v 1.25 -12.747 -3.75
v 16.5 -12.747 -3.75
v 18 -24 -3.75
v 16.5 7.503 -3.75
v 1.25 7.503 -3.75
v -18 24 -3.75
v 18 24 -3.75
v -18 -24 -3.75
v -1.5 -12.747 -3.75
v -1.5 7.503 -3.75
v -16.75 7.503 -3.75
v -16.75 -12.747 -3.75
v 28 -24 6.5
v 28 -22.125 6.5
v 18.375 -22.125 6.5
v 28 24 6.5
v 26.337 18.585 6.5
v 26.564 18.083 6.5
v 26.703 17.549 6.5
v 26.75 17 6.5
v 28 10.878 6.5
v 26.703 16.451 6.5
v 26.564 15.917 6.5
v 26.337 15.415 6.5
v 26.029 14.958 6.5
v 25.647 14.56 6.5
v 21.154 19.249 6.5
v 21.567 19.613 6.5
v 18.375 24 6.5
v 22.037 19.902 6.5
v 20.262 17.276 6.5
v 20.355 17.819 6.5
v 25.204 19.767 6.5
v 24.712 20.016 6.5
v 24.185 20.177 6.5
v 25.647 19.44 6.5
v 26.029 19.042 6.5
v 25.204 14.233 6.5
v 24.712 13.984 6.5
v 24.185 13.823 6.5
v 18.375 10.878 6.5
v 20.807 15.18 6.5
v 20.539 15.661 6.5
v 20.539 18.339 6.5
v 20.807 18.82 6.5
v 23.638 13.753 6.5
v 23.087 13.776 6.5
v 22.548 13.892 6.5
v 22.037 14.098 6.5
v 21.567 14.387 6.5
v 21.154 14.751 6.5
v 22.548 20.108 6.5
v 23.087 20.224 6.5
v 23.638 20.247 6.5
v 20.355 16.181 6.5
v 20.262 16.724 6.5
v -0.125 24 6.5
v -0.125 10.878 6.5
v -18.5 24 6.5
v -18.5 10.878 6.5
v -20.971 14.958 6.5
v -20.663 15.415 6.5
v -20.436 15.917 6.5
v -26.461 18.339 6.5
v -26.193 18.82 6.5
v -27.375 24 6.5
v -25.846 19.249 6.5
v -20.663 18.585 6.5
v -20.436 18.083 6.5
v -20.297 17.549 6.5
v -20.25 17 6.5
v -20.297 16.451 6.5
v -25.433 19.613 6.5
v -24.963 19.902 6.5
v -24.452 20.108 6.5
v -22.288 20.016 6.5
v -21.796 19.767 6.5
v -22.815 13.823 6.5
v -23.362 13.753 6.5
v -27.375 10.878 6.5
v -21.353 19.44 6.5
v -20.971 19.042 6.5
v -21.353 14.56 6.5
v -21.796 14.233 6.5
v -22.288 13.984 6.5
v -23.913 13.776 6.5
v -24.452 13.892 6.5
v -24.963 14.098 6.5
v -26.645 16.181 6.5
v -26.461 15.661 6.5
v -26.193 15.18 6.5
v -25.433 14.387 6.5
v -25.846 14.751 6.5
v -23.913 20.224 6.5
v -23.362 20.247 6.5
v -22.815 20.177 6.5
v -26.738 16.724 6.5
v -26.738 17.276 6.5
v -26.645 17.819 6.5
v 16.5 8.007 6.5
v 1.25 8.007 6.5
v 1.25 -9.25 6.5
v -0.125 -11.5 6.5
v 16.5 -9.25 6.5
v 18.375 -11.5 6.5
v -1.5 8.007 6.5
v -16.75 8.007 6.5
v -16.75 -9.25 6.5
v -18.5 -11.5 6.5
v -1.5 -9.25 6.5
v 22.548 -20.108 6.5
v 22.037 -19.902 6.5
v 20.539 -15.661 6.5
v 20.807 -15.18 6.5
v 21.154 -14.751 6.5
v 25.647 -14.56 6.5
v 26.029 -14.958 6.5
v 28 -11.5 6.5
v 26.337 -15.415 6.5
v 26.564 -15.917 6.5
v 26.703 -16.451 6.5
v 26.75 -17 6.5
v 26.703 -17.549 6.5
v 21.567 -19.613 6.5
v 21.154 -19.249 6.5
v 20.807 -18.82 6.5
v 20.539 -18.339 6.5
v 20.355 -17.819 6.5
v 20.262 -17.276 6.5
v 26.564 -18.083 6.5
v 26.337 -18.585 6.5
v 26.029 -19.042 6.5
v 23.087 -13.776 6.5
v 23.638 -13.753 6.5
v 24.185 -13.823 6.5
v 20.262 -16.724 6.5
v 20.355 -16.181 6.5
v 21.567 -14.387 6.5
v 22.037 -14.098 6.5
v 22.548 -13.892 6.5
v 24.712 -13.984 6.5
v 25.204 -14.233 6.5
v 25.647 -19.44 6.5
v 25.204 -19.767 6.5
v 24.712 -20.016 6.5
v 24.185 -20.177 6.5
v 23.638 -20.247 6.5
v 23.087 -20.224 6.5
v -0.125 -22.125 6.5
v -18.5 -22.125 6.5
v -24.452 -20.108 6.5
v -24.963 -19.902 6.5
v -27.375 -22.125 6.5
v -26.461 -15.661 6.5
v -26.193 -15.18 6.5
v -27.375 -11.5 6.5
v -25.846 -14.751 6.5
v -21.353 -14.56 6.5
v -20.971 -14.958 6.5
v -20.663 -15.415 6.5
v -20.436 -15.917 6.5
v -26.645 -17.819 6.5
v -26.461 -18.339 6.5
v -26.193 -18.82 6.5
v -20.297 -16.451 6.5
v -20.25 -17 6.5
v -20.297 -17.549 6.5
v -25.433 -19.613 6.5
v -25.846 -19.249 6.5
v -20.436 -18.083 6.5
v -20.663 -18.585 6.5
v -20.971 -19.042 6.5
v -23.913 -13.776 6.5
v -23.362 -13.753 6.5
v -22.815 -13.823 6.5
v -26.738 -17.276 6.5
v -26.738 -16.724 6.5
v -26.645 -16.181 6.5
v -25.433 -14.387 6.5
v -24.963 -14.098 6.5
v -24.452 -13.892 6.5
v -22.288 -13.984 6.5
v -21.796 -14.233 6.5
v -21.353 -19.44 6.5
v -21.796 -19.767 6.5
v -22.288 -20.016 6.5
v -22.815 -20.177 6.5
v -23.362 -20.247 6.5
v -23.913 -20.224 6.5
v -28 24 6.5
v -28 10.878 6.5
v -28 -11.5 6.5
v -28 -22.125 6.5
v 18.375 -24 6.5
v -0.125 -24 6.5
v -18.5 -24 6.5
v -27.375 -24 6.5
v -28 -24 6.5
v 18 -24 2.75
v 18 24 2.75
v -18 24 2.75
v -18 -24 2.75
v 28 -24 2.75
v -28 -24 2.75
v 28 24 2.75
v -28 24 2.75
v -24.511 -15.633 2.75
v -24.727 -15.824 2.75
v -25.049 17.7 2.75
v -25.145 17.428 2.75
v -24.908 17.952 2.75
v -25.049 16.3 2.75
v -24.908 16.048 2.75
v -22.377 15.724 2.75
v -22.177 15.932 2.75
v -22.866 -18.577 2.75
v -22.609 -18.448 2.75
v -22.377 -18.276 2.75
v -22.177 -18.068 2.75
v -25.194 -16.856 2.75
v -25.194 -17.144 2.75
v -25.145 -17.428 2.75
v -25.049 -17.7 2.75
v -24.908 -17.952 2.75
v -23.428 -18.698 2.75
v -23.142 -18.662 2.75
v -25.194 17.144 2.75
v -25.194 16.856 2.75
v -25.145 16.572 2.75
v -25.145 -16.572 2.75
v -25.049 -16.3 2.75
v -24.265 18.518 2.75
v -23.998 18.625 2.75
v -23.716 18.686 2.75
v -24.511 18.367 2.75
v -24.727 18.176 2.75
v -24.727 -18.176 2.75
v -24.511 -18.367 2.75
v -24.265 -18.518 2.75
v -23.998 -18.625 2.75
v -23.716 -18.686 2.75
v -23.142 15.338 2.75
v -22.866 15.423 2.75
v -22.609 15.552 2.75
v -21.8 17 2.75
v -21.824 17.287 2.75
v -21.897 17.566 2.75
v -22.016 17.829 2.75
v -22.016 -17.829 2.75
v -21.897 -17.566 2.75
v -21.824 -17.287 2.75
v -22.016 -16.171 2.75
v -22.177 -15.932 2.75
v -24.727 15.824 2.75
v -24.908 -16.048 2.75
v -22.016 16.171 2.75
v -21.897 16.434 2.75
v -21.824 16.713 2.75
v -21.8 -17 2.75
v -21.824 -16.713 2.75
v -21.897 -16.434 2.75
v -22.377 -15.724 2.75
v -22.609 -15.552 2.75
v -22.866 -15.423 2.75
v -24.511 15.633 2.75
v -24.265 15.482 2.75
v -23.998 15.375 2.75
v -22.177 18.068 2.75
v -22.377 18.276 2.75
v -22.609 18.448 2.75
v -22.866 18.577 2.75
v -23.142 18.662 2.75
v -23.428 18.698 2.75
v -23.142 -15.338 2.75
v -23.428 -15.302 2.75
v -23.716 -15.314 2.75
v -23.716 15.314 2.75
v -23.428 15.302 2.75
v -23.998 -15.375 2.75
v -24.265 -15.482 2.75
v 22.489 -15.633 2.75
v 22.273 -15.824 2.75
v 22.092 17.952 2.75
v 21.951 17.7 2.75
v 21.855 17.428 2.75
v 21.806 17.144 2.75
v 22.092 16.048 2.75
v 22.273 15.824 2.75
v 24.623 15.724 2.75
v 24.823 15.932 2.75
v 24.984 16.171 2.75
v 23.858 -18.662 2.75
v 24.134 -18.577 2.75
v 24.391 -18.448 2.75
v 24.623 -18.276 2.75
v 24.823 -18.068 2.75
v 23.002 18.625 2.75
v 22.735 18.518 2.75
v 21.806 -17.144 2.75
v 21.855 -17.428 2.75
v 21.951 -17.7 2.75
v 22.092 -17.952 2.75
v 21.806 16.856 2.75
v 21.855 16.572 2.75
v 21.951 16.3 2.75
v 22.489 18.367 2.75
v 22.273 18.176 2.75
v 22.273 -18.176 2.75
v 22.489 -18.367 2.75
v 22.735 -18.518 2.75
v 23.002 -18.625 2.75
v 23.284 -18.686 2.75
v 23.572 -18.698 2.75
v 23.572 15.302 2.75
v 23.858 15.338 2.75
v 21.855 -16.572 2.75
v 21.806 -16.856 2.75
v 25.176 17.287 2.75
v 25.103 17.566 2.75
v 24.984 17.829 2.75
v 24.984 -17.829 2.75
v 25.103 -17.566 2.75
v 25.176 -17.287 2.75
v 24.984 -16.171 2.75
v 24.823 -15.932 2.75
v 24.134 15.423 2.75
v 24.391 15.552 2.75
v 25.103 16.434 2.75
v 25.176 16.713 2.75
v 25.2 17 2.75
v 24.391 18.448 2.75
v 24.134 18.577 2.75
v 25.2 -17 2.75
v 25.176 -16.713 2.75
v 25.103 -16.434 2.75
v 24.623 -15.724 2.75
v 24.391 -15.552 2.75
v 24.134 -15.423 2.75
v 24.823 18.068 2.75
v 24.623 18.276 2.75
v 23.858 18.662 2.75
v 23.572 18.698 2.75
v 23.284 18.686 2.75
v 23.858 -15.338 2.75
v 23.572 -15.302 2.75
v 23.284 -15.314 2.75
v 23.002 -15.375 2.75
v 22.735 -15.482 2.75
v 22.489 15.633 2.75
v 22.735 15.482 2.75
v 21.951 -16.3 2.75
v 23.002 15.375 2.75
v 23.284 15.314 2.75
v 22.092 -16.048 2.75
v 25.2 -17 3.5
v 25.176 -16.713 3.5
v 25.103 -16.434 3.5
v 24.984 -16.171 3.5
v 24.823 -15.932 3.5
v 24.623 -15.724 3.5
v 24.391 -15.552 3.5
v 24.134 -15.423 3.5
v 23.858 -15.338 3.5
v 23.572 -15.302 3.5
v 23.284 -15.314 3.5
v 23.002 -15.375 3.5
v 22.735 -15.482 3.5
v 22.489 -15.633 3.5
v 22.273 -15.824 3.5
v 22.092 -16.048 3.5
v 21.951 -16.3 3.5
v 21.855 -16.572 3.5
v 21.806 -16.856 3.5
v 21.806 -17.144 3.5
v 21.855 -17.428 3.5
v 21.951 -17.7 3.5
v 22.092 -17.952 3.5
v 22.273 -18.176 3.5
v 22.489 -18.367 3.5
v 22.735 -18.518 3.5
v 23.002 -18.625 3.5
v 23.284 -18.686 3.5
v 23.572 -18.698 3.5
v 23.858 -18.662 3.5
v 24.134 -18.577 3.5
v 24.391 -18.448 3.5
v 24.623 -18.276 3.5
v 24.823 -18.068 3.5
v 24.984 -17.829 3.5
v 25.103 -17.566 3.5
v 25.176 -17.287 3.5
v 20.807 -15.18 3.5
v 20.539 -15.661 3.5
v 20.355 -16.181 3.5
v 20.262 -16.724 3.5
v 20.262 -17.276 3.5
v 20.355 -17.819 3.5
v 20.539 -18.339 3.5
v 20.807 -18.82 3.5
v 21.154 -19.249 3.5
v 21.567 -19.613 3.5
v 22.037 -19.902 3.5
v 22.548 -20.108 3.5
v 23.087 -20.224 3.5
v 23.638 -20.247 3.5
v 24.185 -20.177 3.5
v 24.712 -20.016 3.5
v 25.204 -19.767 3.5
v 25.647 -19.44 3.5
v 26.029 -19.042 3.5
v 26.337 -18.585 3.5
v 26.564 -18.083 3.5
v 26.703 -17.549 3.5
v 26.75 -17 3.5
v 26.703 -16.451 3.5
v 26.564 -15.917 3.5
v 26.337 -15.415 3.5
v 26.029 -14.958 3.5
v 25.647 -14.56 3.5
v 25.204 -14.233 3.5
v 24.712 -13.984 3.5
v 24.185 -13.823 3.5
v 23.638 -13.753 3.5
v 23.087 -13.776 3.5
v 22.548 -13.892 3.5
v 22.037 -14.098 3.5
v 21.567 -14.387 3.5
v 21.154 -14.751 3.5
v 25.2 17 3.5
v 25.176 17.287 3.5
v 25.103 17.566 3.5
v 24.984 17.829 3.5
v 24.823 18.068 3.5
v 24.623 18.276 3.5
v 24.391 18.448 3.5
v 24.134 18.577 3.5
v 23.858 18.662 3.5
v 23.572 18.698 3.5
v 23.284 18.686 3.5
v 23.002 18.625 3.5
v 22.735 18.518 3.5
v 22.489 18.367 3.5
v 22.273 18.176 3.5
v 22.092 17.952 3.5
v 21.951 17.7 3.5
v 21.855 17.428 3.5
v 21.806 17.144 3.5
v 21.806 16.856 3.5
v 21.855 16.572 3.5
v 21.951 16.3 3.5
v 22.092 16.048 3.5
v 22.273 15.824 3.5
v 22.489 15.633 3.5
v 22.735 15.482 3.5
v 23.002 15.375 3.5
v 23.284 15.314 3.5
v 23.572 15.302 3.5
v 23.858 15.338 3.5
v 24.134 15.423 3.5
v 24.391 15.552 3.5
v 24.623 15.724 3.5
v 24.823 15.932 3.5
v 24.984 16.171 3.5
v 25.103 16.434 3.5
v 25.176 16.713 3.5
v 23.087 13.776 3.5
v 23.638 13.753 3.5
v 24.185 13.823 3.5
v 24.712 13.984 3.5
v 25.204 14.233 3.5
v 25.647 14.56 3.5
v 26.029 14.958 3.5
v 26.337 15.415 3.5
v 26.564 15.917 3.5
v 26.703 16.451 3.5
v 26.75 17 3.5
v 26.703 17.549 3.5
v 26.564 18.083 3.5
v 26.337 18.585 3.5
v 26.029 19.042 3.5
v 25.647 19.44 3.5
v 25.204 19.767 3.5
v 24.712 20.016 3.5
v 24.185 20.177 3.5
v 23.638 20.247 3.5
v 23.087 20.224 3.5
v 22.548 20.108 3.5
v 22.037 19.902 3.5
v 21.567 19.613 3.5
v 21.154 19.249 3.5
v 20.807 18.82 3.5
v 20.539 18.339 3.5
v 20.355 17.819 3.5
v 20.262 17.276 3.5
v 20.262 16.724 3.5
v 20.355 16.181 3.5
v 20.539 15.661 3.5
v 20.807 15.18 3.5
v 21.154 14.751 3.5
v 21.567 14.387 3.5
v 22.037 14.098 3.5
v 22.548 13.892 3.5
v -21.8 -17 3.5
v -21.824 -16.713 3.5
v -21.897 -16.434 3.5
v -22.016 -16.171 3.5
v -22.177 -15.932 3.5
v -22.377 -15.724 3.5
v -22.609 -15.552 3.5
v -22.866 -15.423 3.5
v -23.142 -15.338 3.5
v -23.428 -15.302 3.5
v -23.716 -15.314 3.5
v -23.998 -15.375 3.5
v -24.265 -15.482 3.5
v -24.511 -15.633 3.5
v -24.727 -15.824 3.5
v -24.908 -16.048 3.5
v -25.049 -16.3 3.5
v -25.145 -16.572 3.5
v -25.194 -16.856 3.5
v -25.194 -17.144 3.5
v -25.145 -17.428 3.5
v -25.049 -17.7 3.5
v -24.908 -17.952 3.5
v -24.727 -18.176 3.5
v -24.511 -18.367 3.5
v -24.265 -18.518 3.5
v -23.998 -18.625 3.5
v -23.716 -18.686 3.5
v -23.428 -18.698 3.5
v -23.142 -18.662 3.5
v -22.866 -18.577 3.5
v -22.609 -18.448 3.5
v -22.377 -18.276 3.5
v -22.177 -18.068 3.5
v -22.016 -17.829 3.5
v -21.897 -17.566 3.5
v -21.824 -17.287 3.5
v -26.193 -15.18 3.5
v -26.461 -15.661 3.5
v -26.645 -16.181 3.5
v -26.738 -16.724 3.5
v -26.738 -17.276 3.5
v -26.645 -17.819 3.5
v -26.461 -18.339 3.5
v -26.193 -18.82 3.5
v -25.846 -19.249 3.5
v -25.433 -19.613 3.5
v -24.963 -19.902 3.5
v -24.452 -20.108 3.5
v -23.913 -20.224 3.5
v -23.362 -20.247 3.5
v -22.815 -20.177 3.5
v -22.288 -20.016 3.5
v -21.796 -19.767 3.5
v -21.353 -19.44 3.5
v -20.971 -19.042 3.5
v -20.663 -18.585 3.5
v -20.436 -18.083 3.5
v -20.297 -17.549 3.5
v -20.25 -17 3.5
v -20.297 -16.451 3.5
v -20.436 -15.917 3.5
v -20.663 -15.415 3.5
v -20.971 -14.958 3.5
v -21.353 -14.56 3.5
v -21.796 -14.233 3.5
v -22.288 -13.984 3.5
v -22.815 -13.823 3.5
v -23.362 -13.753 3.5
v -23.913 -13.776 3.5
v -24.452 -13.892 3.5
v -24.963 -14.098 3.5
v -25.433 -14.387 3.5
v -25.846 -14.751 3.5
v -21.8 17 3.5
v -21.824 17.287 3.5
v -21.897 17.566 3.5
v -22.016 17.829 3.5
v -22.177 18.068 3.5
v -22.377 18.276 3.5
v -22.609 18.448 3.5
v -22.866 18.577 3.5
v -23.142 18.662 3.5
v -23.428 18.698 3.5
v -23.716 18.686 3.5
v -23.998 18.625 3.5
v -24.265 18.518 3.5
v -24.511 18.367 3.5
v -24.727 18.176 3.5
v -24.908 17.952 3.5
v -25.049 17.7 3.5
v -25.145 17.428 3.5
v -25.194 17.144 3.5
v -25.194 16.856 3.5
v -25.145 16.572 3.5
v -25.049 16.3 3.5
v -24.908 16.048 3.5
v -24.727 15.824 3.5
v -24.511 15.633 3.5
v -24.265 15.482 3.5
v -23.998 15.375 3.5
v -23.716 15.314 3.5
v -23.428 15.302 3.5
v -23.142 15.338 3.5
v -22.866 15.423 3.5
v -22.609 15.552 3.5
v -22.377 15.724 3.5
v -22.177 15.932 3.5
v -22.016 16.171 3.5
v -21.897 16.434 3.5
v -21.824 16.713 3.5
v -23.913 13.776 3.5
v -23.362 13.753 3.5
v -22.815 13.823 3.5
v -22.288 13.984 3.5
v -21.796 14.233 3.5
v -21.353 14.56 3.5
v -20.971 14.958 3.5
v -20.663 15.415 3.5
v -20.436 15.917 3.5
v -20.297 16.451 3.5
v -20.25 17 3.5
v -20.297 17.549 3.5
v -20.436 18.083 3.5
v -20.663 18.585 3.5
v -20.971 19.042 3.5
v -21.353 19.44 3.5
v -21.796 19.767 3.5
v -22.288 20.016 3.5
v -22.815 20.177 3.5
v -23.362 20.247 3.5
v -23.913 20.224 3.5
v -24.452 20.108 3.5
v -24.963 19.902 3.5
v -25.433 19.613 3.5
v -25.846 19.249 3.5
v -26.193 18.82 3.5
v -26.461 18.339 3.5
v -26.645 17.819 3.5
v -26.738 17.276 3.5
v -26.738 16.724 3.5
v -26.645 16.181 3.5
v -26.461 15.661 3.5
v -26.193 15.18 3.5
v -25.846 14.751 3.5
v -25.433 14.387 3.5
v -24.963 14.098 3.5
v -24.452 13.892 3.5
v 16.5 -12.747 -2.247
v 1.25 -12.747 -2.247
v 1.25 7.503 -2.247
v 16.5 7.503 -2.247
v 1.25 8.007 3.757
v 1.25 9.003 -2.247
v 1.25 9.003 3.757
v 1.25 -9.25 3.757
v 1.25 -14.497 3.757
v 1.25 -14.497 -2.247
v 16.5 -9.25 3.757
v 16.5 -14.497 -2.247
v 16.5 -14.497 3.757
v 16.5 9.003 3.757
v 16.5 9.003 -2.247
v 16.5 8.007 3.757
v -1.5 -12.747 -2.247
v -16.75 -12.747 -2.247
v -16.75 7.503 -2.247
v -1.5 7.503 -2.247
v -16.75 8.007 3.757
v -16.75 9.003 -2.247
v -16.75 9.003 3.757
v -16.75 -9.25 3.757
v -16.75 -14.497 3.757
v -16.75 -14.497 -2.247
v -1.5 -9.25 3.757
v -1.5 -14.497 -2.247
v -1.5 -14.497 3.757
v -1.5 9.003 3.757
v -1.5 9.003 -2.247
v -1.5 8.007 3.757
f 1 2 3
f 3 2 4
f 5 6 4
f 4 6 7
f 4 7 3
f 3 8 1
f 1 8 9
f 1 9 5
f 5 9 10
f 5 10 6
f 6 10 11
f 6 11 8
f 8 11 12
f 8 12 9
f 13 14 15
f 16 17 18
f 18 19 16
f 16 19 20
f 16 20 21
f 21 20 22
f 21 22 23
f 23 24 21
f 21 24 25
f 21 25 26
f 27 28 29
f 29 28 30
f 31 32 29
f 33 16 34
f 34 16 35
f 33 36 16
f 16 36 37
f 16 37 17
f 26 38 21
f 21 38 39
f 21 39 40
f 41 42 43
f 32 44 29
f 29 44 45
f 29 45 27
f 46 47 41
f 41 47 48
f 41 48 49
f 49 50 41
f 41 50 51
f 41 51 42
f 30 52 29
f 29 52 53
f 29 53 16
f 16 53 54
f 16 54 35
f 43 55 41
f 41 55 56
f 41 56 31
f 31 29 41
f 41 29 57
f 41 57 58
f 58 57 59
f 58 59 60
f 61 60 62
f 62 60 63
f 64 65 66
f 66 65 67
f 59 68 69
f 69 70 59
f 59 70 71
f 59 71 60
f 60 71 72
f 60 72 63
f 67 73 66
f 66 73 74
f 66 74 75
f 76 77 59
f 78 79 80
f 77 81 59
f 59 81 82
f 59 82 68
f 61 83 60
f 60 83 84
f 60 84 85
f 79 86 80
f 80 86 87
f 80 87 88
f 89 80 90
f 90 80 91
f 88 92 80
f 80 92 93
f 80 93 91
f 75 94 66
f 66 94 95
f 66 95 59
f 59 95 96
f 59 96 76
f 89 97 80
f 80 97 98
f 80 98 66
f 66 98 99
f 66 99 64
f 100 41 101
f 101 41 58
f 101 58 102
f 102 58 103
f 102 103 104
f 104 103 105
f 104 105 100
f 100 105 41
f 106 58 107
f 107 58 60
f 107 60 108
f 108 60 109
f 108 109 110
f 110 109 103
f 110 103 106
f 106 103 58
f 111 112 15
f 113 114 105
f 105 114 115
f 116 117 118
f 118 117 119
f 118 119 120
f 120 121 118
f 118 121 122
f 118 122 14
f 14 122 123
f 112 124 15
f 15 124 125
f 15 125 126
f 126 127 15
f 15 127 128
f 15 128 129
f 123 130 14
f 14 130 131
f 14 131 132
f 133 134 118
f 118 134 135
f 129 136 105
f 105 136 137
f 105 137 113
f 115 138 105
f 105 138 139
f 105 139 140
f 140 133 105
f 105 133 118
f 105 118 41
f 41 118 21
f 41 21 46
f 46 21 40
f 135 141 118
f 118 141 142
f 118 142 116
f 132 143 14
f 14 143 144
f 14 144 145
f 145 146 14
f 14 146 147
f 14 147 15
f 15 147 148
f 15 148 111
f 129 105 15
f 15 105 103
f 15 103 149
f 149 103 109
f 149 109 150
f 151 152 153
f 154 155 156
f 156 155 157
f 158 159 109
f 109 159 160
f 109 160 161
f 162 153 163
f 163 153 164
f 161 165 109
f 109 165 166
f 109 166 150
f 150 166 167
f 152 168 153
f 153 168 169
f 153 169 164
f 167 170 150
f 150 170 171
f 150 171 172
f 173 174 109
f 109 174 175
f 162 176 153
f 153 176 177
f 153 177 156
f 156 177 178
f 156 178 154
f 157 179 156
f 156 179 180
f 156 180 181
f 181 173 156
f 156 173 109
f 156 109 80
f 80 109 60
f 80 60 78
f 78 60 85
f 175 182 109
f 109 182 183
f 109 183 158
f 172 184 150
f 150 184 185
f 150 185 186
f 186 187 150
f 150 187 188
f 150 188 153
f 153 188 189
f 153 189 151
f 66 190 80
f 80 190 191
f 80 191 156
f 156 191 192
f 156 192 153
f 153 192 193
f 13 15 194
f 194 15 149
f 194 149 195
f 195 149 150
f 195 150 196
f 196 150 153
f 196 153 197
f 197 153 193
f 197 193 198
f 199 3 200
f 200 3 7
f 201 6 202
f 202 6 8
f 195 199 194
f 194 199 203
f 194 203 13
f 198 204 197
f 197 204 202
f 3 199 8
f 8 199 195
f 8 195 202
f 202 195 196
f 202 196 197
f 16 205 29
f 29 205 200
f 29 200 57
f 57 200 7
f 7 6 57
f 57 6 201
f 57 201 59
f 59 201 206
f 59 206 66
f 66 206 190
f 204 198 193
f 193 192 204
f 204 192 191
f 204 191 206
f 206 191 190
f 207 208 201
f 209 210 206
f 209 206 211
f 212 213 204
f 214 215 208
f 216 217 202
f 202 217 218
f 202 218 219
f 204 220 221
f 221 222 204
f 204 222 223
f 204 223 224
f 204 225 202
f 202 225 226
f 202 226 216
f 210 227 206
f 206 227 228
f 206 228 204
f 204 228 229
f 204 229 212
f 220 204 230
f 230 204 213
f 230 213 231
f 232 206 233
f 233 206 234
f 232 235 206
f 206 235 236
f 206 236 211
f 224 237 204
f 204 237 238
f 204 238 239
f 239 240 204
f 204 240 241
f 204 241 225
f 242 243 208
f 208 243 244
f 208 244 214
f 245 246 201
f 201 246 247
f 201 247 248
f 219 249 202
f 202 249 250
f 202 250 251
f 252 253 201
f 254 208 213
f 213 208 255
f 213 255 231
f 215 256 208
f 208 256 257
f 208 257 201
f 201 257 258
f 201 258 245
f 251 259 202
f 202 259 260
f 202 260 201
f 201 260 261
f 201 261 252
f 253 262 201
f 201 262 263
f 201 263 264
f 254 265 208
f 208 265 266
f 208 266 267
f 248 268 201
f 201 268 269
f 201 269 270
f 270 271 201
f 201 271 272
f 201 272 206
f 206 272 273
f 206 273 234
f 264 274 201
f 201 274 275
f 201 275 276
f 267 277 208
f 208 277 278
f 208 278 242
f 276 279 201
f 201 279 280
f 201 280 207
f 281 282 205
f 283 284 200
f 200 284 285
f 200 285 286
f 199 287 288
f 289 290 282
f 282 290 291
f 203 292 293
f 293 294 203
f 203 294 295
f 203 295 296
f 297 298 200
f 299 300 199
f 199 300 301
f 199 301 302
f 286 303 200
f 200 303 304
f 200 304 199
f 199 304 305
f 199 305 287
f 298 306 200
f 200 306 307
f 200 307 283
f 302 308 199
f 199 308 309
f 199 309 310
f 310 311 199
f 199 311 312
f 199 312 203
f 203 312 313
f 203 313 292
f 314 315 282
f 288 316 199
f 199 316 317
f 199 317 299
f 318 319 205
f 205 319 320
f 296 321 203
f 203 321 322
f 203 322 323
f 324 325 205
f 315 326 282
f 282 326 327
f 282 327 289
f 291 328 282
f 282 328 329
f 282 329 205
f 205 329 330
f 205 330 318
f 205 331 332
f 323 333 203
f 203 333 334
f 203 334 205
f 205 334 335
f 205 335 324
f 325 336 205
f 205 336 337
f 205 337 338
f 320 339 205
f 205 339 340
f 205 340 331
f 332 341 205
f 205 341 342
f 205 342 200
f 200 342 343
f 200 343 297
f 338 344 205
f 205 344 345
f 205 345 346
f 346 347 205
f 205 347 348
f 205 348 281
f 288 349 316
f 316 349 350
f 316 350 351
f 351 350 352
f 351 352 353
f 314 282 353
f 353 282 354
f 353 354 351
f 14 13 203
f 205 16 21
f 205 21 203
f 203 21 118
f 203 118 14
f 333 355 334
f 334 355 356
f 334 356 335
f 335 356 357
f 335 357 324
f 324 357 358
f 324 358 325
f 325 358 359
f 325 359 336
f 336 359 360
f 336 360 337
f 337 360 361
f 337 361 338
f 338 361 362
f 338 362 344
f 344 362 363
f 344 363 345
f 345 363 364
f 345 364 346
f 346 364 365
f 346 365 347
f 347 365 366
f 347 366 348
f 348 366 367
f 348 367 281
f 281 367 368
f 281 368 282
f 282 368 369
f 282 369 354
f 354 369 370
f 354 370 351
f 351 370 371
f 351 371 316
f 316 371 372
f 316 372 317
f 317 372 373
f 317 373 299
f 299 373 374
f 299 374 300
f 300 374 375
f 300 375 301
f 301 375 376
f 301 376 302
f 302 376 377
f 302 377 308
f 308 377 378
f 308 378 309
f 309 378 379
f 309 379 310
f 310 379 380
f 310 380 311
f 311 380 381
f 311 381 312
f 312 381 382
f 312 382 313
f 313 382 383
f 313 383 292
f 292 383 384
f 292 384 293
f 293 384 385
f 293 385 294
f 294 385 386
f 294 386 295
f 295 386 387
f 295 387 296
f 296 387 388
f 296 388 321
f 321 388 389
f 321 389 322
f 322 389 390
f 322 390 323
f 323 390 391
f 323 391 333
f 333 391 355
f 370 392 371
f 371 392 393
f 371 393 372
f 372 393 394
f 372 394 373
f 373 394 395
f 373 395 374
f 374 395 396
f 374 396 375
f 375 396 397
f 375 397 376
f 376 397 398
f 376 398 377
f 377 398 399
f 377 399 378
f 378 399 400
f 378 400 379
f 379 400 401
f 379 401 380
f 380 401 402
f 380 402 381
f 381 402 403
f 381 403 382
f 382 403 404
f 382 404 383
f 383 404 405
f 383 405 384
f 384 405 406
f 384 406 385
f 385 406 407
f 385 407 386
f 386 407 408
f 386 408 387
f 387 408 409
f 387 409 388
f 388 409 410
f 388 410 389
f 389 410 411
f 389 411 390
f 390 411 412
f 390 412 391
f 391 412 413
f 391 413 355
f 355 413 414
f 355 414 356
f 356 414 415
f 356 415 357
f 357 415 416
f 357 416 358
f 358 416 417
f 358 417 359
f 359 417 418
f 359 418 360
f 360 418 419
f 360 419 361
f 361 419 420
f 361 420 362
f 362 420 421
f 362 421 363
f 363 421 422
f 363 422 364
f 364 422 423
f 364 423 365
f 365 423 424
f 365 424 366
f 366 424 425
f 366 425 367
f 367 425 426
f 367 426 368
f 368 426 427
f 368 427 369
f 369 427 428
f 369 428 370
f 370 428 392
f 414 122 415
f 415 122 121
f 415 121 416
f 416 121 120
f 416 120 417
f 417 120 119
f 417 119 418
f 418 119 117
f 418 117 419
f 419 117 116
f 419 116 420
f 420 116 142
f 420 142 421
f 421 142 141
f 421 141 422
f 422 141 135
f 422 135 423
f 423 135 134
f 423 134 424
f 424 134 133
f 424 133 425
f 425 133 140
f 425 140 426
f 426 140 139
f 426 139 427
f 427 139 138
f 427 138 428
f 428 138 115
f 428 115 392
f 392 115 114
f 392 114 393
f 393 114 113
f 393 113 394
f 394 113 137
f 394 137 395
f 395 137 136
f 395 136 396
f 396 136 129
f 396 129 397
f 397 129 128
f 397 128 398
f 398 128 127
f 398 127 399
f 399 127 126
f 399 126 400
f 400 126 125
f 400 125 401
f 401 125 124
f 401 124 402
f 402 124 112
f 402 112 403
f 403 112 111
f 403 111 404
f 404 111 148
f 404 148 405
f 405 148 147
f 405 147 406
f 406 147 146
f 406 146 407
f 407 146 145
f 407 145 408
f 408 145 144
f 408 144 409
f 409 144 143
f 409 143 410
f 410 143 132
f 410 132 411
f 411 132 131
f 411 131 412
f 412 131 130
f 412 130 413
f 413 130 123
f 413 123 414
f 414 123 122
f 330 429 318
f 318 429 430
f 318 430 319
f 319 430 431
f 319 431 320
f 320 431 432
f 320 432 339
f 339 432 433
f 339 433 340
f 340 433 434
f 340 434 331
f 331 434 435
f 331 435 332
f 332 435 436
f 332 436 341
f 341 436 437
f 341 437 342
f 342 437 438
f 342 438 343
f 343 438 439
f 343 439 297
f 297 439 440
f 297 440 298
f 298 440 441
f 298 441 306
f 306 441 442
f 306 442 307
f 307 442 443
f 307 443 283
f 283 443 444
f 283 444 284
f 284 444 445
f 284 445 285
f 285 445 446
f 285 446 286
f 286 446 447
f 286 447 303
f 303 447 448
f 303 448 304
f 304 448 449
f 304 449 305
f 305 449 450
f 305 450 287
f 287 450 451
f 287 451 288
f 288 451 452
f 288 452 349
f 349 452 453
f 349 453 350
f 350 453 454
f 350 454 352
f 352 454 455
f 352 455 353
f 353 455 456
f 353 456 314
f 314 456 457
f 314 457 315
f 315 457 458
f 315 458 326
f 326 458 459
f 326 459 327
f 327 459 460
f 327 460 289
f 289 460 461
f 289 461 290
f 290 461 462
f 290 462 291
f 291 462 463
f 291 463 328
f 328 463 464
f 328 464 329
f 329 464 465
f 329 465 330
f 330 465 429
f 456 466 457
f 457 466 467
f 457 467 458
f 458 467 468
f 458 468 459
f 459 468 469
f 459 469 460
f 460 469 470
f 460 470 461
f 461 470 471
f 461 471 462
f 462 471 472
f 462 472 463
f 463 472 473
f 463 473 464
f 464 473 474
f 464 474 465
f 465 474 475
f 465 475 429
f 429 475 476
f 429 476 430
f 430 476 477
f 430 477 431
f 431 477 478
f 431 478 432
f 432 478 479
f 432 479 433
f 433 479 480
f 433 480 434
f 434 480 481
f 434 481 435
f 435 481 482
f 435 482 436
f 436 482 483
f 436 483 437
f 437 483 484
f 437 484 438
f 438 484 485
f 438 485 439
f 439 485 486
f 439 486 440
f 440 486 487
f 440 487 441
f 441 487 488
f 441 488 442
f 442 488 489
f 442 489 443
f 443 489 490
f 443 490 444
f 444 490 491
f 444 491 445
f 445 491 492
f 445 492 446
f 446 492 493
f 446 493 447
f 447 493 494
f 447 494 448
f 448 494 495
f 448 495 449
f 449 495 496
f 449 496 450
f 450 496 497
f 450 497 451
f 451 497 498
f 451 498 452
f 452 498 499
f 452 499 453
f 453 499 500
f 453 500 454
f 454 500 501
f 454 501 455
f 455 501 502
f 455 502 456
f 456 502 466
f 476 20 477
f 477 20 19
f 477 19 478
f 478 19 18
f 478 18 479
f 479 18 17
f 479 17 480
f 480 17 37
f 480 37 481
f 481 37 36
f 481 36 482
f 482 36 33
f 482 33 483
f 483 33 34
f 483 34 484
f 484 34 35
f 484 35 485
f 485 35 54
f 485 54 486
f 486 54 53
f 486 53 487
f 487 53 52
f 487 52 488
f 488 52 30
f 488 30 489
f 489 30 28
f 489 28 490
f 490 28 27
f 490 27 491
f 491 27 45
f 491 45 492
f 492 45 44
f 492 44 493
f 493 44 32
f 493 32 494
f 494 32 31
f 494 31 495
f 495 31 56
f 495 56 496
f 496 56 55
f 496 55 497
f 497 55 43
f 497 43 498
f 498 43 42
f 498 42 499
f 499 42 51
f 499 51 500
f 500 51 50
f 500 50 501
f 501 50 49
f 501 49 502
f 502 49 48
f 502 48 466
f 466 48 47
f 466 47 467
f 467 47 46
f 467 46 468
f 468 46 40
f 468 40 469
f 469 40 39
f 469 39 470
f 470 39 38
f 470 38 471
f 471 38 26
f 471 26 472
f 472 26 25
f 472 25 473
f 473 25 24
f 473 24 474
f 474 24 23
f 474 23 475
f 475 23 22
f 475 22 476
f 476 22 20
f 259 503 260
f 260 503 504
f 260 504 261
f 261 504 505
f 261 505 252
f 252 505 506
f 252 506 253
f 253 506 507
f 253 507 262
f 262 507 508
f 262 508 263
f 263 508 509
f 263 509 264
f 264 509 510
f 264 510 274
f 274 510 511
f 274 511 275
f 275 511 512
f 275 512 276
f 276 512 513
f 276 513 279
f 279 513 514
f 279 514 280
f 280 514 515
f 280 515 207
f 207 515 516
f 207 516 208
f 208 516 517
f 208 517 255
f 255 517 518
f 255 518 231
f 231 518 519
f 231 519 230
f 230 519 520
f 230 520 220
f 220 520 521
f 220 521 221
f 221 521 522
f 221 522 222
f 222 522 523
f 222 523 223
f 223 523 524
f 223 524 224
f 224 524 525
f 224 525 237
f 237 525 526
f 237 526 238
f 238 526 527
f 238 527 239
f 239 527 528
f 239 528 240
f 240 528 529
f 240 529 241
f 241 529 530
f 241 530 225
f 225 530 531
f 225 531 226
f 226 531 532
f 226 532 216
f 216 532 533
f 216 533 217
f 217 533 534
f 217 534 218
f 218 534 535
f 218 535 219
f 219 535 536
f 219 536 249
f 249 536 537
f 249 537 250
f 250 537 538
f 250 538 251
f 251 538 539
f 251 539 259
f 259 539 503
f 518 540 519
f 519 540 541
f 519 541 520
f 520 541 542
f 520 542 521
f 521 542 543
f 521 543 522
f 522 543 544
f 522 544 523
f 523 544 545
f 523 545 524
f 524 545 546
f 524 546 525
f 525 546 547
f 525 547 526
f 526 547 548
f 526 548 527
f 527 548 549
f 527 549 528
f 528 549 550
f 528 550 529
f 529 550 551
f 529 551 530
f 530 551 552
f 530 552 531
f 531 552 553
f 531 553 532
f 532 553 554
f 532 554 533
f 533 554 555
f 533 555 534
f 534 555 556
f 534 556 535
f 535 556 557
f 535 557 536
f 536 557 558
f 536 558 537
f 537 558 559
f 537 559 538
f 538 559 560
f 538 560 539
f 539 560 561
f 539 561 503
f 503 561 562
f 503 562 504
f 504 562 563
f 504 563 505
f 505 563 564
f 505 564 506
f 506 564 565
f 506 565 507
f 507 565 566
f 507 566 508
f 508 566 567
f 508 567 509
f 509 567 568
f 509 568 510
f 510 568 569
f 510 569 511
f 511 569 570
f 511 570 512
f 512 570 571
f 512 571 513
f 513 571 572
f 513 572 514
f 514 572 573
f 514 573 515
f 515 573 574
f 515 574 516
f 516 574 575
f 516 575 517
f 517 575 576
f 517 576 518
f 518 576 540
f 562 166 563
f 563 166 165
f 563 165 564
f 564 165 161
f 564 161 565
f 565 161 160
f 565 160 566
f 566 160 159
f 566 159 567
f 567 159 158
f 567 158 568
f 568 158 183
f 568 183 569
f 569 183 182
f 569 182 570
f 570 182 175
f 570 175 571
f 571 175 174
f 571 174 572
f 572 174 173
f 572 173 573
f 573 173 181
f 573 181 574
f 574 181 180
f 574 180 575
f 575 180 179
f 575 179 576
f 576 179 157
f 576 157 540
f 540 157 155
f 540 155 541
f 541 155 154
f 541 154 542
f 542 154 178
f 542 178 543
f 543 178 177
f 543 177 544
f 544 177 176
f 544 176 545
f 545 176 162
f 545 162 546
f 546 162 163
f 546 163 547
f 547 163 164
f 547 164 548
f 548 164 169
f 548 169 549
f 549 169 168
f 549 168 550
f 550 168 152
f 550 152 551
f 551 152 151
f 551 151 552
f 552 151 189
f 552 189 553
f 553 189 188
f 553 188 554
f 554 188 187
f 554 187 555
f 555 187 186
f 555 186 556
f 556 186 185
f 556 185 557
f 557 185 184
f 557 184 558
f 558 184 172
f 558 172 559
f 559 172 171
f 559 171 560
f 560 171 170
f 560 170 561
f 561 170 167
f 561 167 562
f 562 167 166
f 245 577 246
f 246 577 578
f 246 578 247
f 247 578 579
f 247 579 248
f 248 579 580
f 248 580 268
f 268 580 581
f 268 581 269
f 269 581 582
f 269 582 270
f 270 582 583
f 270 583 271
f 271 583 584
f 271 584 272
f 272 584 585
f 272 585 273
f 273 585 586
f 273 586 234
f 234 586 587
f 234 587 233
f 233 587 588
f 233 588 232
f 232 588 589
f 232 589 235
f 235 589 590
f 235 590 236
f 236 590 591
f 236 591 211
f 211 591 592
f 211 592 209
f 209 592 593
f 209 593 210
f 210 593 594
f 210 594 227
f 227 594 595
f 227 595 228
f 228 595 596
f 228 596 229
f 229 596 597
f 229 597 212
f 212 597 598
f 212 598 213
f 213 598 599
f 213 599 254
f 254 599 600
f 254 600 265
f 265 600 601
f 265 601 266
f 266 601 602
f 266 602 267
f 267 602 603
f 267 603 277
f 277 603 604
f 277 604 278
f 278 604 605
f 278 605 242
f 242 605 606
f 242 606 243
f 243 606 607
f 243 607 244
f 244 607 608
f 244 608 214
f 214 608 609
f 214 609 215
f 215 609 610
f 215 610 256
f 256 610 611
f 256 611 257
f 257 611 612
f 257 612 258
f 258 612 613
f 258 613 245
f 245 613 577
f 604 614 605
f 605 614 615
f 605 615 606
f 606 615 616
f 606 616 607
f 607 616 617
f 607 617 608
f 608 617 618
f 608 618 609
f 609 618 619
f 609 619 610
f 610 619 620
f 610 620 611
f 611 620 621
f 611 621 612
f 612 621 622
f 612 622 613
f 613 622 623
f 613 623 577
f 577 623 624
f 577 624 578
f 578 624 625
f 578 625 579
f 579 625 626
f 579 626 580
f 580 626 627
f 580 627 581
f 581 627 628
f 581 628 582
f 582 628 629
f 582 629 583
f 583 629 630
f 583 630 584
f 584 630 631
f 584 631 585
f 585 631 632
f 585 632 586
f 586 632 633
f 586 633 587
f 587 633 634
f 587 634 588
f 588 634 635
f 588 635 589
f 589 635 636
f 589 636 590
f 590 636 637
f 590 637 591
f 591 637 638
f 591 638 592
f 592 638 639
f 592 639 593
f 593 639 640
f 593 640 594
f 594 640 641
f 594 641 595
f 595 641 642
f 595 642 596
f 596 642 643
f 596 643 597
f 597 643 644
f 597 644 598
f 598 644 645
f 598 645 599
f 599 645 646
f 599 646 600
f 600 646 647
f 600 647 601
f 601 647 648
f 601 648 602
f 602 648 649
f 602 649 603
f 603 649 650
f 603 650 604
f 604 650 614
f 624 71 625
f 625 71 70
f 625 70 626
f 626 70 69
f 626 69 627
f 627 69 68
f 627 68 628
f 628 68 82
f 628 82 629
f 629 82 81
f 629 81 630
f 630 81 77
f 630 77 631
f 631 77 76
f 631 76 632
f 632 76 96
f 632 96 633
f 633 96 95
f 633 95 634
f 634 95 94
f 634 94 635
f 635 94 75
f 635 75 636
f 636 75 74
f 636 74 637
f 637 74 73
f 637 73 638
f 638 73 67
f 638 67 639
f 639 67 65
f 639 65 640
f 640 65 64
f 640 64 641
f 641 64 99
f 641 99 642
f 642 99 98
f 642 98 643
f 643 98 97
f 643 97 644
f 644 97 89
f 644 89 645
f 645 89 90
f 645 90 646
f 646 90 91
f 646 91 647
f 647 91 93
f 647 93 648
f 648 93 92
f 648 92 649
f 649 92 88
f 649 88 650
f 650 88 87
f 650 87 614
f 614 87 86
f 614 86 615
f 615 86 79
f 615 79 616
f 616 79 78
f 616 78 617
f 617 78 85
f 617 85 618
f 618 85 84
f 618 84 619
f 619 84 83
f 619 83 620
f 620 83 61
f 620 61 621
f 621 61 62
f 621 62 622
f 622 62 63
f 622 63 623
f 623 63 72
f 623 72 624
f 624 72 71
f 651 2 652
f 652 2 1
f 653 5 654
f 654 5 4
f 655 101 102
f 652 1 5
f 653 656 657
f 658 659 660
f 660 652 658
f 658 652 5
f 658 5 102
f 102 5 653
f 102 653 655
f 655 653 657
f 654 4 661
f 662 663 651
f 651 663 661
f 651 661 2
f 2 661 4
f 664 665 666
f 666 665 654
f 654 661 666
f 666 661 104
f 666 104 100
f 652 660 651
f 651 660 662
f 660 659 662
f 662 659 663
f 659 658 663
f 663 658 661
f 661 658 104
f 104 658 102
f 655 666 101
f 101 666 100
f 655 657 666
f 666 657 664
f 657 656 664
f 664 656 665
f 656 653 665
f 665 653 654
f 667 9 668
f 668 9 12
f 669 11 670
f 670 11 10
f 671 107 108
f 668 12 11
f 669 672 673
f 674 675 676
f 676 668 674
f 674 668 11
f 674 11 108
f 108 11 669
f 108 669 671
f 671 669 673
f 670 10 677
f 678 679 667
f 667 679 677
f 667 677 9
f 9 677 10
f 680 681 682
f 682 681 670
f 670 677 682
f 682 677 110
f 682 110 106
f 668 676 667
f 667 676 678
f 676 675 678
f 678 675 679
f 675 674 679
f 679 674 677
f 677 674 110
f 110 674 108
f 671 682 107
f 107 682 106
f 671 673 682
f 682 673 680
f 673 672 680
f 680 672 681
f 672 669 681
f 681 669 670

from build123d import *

# Parameters (mm, degrees)
BOSS_EXTRUDE1_DEPTH            = 6.5
BOSS_EXTRUDE1_DEPTH_BACK       = 3.75
SKETCH1_W                      = 36
SKETCH1_H                      = 48
SKETCH2_W                      = 56
SKETCH2_H                      = 48
BOSS_EXTRUDE2_DEPTH            = 3.75
CBORE_FOR_M3_SHCS1_D           = 3.4
CBORE_FOR_M3_SHCS1_DEPTH       = 10.1
CBORE_FOR_M3_SHCS1_CBORE_D     = 6.5
CBORE_FOR_M3_SHCS1_CBORE_DEPTH = 3
CBORE_FOR_M3_SHCS1_TIP         = 1.021463052
CUT_EXTRUDE1_DEPTH             = 15.25
LPATTERN1_COUNT                = 2
LPATTERN1_PITCH                = 18


with BuildPart() as part:
    # Sketch1 → Boss-Extrude1 (new, two sides: drawn at the far end of the back side and taken through both)
    with BuildSketch(Plane.XY.offset(-BOSS_EXTRUDE1_DEPTH_BACK)):
        Rectangle(SKETCH1_W, SKETCH1_H)
    extrude(amount=BOSS_EXTRUDE1_DEPTH + BOSS_EXTRUDE1_DEPTH_BACK)

    # Sketch2 → Boss-Extrude2 (add)
    with BuildSketch(Plane(origin=(0, 0, 6.5), x_dir=(-1, 0, 0), z_dir=(0, 0, -1))):
        Rectangle(SKETCH2_W, SKETCH2_H)
    extrude(amount=BOSS_EXTRUDE2_DEPTH)

    # CBORE for M3 SHCS1
    with Locations(Plane.XY.offset(6.5)):
        with Locations((-23.5, 17), (-23.5, -17), (23.5, 17), (23.5, -17)):
            CounterBoreHole(CBORE_FOR_M3_SHCS1_D / 2, CBORE_FOR_M3_SHCS1_CBORE_D / 2, CBORE_FOR_M3_SHCS1_CBORE_DEPTH, depth=CBORE_FOR_M3_SHCS1_DEPTH)
            with Locations((0, 0, -(CBORE_FOR_M3_SHCS1_DEPTH + CBORE_FOR_M3_SHCS1_TIP / 2))):  # 118° drill point
                Cone(0, CBORE_FOR_M3_SHCS1_D / 2, CBORE_FOR_M3_SHCS1_TIP, mode=Mode.SUBTRACT)

    # Sketch7 → Cut-Extrude1 (cut)
    with BuildSketch(Plane(origin=(16.5, 0, 0), x_dir=(0, 0, -1), z_dir=(1, 0, 0))):
        Polygon((-6.503383917, 8.006767833), (-3.756779362, 8.006767833), (-3.756779362, 9.003383917), (2.246616083, 9.003383917), (2.246616083, 7.503383917), (3.746616083, 7.503383917), (6.355468839, 7.503383917), (6.355468839, -12.746616083), (3.871124209, -12.746616083), (3.746616083, -12.746616083), (2.246616083, -12.746616083), (2.246616083, -14.496616083), (-3.756779362, -14.496616083), (-3.756779362, -9.25), (-6.503383917, -9.25), align=None)
    cut_extrude1 = extrude(amount=-CUT_EXTRUDE1_DEPTH, mode=Mode.SUBTRACT)

    # LPattern1: Cut-Extrude1 ×2
    with Locations(*[(-i * LPATTERN1_PITCH, 0, 0) for i in range(1, LPATTERN1_COUNT)]):
        add(cut_extrude1, mode=Mode.SUBTRACT)


solid = part.part
